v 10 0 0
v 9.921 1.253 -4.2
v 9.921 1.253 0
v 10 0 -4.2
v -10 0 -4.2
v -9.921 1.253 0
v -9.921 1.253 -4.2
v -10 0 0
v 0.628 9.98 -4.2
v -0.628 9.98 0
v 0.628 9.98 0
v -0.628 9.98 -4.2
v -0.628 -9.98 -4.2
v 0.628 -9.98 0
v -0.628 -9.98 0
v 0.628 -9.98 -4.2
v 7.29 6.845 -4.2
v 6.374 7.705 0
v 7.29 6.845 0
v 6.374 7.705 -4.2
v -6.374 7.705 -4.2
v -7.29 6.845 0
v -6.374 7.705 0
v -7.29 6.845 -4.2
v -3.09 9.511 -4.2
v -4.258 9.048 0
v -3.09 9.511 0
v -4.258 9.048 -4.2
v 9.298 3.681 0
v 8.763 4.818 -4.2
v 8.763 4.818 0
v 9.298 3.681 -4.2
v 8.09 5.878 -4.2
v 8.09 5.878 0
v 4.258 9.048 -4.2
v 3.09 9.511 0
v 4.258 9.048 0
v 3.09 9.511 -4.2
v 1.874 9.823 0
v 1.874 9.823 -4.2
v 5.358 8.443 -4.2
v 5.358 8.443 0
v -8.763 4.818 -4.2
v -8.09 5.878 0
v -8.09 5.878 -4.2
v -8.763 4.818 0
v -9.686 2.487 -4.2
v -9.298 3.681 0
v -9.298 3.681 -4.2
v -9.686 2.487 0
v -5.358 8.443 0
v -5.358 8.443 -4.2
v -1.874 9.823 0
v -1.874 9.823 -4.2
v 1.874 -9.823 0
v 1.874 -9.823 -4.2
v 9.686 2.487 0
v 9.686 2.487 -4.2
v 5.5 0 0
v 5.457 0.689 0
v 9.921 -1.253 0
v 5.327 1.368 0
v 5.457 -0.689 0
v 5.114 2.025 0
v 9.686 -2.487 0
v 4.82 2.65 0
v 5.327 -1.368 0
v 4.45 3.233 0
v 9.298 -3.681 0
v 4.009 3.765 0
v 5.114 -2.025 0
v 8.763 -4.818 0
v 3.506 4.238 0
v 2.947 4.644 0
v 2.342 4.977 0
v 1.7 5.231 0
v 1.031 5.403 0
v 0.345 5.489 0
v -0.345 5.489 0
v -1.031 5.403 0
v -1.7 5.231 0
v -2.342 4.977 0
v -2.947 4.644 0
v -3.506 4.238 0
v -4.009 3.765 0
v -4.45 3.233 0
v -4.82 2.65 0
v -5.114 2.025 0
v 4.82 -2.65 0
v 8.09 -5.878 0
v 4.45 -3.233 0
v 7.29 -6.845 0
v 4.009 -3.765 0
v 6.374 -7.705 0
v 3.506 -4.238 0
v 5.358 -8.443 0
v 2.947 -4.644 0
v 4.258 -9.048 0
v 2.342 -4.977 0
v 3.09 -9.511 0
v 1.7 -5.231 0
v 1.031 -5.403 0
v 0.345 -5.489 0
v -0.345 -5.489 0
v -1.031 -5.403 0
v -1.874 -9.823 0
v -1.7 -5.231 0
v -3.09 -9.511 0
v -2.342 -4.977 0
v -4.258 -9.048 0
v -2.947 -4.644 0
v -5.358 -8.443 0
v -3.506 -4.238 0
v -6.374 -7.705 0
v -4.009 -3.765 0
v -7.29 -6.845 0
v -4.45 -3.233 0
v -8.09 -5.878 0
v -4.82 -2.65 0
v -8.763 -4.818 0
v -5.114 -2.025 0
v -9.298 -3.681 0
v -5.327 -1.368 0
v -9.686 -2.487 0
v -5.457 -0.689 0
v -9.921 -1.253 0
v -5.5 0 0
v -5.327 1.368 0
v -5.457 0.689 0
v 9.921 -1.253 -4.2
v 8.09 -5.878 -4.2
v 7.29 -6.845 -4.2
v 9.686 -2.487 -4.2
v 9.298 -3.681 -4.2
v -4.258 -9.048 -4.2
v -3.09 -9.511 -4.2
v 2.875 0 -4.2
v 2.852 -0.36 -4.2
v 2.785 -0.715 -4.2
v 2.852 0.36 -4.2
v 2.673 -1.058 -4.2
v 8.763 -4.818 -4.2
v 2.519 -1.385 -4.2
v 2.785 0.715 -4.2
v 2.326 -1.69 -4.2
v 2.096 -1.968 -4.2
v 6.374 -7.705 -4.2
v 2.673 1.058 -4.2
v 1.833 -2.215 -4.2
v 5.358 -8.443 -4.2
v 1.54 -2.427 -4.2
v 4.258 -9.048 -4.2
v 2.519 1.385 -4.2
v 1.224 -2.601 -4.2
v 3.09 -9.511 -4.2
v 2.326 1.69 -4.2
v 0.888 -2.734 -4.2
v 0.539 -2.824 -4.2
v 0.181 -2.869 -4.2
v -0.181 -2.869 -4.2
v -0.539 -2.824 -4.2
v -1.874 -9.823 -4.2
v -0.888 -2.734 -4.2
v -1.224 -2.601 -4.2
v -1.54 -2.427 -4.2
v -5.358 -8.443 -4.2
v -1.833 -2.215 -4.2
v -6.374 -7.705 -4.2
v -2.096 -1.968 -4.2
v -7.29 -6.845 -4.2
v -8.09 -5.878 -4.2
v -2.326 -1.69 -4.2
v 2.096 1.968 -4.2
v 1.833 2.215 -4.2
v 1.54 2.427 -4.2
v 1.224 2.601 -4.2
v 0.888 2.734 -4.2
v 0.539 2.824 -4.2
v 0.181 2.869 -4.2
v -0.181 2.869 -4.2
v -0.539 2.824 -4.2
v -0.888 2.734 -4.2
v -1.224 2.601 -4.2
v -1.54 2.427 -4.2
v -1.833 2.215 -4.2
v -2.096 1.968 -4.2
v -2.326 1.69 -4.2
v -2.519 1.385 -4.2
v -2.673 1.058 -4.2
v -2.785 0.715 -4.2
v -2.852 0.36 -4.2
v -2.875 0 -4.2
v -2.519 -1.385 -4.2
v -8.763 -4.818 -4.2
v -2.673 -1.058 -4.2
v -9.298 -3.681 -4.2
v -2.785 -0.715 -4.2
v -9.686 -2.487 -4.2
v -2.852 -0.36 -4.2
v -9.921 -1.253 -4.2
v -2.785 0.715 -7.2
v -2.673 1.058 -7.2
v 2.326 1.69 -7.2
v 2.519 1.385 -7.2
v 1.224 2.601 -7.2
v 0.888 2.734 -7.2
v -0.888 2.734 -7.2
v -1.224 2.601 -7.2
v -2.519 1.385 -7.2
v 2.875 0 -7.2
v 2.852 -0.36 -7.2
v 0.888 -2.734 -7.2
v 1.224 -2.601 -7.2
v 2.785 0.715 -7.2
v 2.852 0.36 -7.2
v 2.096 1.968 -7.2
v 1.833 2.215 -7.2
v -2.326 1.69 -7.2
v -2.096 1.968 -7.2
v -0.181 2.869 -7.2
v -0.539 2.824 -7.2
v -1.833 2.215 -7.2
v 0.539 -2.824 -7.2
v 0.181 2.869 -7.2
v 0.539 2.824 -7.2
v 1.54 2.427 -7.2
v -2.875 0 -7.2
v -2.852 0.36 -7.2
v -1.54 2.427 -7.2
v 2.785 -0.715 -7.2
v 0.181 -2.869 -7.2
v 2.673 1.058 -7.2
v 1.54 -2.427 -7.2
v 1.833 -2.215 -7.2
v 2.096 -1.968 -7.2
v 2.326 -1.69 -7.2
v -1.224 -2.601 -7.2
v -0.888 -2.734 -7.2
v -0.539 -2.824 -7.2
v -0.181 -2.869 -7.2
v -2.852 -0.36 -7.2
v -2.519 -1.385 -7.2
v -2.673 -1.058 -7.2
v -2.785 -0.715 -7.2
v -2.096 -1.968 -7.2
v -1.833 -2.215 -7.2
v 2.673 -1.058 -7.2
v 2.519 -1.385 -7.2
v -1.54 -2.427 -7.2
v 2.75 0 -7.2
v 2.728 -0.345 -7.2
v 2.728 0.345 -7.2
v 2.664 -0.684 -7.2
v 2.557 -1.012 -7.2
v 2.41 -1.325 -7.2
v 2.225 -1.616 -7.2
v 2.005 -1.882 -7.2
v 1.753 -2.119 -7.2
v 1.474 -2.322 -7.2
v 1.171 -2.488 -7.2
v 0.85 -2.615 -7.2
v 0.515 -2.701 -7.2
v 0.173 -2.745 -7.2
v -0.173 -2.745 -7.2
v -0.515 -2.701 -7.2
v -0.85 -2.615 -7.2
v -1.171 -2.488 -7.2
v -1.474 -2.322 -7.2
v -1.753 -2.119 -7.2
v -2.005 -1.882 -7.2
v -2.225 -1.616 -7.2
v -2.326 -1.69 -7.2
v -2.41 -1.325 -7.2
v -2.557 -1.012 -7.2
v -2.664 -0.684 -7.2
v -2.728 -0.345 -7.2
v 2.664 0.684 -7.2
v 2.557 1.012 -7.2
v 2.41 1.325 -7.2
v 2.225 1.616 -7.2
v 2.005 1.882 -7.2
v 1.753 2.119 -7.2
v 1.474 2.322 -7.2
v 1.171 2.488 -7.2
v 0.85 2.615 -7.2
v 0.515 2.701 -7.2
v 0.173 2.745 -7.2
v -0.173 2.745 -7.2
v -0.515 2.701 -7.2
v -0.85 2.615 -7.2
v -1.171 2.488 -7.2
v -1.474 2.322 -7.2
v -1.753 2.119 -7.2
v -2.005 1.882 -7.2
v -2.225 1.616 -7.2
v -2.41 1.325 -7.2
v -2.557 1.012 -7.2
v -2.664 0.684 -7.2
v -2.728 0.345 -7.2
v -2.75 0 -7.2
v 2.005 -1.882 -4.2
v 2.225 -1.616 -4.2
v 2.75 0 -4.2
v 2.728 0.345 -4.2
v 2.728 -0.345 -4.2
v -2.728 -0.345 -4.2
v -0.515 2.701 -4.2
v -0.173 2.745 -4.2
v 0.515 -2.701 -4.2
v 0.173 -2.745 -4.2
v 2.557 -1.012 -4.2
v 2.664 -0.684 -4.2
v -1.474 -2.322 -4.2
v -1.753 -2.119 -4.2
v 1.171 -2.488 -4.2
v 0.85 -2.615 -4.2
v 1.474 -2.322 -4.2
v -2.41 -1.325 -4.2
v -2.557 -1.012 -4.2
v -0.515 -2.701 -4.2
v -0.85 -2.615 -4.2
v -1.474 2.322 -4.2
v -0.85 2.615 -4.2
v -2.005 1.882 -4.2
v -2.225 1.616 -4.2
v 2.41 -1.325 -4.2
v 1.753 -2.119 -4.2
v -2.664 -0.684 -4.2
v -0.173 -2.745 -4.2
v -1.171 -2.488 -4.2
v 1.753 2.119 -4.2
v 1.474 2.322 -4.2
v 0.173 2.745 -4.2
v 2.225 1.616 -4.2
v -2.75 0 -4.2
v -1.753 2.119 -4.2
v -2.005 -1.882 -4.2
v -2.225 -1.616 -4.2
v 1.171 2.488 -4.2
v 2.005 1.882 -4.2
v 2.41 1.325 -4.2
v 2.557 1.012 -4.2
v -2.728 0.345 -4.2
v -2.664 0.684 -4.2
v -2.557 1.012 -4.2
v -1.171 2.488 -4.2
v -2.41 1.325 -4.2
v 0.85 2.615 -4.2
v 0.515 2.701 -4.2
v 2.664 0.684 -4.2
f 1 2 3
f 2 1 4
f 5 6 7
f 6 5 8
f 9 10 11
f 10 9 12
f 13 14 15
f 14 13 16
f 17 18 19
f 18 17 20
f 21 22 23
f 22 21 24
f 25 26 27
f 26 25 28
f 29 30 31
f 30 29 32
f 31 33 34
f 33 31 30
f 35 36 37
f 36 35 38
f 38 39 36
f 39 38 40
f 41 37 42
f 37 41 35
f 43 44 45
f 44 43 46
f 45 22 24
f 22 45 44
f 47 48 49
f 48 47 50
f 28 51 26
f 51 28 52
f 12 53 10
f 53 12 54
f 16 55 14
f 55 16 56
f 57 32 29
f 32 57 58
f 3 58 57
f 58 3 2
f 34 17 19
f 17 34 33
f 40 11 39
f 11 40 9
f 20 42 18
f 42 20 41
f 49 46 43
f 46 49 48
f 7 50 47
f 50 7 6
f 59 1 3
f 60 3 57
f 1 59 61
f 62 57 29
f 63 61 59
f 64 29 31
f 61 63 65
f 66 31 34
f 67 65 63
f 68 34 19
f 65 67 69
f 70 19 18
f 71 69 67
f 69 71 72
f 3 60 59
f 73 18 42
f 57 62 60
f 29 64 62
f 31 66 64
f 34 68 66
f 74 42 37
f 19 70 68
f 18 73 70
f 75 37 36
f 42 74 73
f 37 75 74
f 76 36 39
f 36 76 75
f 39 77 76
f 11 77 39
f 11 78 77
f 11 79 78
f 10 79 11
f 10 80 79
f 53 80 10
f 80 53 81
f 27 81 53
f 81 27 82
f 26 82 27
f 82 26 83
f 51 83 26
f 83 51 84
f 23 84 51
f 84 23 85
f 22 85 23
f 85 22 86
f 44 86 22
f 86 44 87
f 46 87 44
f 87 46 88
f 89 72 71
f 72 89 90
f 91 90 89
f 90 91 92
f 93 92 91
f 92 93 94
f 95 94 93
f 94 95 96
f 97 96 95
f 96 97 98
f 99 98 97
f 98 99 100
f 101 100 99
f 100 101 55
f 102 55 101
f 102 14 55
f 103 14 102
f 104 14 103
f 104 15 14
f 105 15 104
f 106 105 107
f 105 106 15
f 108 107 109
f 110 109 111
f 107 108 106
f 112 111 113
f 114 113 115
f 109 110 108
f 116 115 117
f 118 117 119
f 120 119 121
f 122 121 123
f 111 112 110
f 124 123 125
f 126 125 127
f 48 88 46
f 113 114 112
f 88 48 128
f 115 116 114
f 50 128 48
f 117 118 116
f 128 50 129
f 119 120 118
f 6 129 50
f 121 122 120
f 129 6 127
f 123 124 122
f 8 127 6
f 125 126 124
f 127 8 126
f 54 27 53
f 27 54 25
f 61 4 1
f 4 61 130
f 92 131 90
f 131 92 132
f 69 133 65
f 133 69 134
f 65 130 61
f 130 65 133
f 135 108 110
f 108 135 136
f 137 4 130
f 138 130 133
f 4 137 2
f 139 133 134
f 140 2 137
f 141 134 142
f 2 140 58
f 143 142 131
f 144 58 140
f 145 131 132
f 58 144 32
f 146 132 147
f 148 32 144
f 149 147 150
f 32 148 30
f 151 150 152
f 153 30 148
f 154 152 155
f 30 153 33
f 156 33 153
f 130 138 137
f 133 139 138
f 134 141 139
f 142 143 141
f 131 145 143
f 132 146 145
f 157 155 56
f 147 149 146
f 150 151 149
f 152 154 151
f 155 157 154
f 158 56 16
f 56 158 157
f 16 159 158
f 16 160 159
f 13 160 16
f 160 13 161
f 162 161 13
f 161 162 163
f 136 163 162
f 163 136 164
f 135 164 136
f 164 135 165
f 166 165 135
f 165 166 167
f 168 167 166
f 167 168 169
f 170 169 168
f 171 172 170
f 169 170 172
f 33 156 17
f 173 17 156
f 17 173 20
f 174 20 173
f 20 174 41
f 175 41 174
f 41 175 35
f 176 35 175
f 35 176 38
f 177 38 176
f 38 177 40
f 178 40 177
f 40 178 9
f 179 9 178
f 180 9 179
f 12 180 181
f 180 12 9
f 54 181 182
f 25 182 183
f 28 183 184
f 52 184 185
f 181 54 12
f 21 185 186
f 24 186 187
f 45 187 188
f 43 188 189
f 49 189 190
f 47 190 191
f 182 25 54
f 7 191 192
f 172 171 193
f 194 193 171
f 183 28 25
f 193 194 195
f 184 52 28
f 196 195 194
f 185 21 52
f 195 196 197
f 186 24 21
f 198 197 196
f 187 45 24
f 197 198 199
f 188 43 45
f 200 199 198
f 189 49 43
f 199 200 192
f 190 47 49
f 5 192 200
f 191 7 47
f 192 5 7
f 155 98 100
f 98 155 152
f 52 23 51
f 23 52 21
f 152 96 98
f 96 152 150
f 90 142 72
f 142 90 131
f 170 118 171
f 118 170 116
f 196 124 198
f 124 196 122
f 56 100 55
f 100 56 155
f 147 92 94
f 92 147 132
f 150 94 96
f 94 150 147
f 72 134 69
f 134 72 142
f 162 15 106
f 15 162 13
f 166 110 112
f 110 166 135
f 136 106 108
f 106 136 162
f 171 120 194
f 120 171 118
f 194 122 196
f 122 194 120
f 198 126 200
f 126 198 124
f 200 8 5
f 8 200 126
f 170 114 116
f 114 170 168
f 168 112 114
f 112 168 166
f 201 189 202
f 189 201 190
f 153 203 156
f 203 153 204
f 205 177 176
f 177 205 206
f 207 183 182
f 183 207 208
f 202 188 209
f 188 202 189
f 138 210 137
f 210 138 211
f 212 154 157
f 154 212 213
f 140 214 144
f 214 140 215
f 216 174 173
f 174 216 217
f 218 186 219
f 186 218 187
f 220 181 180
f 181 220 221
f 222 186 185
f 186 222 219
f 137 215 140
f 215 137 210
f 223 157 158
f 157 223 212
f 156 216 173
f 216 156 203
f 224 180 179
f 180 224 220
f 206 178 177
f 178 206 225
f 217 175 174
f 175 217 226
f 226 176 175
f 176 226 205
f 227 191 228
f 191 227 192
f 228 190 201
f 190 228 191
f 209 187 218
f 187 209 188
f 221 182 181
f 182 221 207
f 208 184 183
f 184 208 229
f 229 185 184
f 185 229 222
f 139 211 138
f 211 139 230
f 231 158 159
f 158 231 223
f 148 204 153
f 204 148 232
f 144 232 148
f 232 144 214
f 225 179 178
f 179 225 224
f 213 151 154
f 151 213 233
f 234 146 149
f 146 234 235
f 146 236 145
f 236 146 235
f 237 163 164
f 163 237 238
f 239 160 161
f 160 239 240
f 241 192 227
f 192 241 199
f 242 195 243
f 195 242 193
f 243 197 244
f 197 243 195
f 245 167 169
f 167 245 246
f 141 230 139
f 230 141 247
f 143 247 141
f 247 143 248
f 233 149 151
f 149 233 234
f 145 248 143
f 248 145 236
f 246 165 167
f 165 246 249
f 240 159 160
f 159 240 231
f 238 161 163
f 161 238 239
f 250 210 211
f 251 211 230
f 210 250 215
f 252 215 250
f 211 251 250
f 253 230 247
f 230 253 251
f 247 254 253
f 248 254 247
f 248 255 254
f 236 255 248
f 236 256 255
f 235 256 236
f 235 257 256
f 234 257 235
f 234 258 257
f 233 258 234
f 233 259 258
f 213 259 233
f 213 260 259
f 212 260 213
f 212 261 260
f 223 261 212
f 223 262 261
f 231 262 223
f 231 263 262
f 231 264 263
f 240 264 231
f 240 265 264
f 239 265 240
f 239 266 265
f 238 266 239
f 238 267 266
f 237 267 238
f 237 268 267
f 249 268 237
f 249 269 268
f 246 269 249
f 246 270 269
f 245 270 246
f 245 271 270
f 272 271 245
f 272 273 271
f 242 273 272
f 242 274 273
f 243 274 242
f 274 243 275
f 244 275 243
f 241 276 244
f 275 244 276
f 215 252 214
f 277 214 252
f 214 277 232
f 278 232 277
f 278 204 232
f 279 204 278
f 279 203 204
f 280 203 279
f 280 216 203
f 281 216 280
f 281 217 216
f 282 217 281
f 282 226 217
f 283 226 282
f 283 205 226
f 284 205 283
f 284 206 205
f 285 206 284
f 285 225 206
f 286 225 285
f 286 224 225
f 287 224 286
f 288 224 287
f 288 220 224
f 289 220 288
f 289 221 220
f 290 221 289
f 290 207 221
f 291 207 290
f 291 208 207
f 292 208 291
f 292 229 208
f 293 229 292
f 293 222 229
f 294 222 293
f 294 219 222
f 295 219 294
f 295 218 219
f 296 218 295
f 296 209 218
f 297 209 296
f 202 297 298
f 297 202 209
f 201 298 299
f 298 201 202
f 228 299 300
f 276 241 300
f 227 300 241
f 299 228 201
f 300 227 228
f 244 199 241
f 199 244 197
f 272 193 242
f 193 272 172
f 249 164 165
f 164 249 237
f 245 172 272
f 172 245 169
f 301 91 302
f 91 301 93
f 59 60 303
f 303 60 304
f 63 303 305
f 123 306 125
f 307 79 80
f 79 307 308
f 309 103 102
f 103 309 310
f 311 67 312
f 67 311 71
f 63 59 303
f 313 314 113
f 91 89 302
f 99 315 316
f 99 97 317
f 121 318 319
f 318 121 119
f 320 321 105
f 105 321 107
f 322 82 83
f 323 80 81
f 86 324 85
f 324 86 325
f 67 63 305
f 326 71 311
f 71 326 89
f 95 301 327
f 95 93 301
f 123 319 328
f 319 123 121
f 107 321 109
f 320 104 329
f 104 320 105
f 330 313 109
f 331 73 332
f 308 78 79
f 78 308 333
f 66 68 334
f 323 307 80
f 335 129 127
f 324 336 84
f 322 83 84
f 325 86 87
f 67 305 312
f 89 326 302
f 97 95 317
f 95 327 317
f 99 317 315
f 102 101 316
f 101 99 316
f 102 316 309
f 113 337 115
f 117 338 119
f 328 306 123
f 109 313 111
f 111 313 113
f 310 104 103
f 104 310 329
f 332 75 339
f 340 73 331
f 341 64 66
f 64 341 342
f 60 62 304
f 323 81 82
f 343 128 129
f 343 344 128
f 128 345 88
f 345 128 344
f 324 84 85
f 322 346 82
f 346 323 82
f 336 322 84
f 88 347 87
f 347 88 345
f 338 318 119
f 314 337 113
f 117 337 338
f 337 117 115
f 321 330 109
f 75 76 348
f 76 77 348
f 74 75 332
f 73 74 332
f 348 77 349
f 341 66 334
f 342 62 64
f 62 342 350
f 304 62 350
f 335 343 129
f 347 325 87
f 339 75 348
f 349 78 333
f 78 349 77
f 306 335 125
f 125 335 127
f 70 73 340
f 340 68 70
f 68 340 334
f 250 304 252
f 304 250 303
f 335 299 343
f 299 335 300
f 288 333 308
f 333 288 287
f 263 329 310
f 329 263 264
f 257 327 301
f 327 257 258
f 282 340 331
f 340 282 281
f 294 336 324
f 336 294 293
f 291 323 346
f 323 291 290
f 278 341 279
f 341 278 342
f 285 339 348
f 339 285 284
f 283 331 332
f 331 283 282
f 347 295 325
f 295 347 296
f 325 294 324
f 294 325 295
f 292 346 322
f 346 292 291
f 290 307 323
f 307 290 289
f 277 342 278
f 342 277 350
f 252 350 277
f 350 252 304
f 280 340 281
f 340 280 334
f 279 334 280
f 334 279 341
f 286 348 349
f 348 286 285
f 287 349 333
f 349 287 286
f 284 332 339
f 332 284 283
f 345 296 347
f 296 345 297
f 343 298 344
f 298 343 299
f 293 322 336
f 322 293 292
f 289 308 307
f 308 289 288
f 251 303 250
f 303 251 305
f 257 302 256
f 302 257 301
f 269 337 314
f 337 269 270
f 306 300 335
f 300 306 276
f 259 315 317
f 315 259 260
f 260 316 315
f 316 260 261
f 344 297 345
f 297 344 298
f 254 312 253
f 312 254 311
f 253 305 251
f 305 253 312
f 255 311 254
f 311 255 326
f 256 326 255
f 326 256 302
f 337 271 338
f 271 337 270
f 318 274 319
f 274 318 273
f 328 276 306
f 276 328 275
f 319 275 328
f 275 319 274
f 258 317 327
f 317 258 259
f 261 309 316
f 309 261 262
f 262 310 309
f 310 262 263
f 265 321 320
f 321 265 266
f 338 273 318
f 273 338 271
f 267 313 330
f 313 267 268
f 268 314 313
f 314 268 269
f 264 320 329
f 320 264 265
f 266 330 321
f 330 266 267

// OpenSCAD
$fn = 50;

difference() {
	union() {
		translate(v = [0, 0, -4.2]) {
			cylinder(h = 4.2, r = 10.0);
		}
		#translate(v = [0, 0, -7.2]) {
			cylinder(h = 7.2, r = 2.875);
		}
	}
	union() {
		translate(v = [0, 0, 0]) {
			rotate(a = [0, 0, 0]) {
				difference() {
					union() {
						translate(v = [0, 0, -7.2]) {
							cylinder(h = 7.2, r = 2.25);
						}
						translate(v = [0, 0, -4.2]) {
							cylinder(h = 4.2, r1 = 2.75, r2 = 5.5);
						}
						translate(v = [0, 0, -7.2]) {
							cylinder(h = 7.2, r = 2.75);
						}
						translate(v = [0, 0, -7.2]) {
							cylinder(h = 7.2, r = 2.25);
						}
					}
					union();
				}
			}
		}
	}
}
